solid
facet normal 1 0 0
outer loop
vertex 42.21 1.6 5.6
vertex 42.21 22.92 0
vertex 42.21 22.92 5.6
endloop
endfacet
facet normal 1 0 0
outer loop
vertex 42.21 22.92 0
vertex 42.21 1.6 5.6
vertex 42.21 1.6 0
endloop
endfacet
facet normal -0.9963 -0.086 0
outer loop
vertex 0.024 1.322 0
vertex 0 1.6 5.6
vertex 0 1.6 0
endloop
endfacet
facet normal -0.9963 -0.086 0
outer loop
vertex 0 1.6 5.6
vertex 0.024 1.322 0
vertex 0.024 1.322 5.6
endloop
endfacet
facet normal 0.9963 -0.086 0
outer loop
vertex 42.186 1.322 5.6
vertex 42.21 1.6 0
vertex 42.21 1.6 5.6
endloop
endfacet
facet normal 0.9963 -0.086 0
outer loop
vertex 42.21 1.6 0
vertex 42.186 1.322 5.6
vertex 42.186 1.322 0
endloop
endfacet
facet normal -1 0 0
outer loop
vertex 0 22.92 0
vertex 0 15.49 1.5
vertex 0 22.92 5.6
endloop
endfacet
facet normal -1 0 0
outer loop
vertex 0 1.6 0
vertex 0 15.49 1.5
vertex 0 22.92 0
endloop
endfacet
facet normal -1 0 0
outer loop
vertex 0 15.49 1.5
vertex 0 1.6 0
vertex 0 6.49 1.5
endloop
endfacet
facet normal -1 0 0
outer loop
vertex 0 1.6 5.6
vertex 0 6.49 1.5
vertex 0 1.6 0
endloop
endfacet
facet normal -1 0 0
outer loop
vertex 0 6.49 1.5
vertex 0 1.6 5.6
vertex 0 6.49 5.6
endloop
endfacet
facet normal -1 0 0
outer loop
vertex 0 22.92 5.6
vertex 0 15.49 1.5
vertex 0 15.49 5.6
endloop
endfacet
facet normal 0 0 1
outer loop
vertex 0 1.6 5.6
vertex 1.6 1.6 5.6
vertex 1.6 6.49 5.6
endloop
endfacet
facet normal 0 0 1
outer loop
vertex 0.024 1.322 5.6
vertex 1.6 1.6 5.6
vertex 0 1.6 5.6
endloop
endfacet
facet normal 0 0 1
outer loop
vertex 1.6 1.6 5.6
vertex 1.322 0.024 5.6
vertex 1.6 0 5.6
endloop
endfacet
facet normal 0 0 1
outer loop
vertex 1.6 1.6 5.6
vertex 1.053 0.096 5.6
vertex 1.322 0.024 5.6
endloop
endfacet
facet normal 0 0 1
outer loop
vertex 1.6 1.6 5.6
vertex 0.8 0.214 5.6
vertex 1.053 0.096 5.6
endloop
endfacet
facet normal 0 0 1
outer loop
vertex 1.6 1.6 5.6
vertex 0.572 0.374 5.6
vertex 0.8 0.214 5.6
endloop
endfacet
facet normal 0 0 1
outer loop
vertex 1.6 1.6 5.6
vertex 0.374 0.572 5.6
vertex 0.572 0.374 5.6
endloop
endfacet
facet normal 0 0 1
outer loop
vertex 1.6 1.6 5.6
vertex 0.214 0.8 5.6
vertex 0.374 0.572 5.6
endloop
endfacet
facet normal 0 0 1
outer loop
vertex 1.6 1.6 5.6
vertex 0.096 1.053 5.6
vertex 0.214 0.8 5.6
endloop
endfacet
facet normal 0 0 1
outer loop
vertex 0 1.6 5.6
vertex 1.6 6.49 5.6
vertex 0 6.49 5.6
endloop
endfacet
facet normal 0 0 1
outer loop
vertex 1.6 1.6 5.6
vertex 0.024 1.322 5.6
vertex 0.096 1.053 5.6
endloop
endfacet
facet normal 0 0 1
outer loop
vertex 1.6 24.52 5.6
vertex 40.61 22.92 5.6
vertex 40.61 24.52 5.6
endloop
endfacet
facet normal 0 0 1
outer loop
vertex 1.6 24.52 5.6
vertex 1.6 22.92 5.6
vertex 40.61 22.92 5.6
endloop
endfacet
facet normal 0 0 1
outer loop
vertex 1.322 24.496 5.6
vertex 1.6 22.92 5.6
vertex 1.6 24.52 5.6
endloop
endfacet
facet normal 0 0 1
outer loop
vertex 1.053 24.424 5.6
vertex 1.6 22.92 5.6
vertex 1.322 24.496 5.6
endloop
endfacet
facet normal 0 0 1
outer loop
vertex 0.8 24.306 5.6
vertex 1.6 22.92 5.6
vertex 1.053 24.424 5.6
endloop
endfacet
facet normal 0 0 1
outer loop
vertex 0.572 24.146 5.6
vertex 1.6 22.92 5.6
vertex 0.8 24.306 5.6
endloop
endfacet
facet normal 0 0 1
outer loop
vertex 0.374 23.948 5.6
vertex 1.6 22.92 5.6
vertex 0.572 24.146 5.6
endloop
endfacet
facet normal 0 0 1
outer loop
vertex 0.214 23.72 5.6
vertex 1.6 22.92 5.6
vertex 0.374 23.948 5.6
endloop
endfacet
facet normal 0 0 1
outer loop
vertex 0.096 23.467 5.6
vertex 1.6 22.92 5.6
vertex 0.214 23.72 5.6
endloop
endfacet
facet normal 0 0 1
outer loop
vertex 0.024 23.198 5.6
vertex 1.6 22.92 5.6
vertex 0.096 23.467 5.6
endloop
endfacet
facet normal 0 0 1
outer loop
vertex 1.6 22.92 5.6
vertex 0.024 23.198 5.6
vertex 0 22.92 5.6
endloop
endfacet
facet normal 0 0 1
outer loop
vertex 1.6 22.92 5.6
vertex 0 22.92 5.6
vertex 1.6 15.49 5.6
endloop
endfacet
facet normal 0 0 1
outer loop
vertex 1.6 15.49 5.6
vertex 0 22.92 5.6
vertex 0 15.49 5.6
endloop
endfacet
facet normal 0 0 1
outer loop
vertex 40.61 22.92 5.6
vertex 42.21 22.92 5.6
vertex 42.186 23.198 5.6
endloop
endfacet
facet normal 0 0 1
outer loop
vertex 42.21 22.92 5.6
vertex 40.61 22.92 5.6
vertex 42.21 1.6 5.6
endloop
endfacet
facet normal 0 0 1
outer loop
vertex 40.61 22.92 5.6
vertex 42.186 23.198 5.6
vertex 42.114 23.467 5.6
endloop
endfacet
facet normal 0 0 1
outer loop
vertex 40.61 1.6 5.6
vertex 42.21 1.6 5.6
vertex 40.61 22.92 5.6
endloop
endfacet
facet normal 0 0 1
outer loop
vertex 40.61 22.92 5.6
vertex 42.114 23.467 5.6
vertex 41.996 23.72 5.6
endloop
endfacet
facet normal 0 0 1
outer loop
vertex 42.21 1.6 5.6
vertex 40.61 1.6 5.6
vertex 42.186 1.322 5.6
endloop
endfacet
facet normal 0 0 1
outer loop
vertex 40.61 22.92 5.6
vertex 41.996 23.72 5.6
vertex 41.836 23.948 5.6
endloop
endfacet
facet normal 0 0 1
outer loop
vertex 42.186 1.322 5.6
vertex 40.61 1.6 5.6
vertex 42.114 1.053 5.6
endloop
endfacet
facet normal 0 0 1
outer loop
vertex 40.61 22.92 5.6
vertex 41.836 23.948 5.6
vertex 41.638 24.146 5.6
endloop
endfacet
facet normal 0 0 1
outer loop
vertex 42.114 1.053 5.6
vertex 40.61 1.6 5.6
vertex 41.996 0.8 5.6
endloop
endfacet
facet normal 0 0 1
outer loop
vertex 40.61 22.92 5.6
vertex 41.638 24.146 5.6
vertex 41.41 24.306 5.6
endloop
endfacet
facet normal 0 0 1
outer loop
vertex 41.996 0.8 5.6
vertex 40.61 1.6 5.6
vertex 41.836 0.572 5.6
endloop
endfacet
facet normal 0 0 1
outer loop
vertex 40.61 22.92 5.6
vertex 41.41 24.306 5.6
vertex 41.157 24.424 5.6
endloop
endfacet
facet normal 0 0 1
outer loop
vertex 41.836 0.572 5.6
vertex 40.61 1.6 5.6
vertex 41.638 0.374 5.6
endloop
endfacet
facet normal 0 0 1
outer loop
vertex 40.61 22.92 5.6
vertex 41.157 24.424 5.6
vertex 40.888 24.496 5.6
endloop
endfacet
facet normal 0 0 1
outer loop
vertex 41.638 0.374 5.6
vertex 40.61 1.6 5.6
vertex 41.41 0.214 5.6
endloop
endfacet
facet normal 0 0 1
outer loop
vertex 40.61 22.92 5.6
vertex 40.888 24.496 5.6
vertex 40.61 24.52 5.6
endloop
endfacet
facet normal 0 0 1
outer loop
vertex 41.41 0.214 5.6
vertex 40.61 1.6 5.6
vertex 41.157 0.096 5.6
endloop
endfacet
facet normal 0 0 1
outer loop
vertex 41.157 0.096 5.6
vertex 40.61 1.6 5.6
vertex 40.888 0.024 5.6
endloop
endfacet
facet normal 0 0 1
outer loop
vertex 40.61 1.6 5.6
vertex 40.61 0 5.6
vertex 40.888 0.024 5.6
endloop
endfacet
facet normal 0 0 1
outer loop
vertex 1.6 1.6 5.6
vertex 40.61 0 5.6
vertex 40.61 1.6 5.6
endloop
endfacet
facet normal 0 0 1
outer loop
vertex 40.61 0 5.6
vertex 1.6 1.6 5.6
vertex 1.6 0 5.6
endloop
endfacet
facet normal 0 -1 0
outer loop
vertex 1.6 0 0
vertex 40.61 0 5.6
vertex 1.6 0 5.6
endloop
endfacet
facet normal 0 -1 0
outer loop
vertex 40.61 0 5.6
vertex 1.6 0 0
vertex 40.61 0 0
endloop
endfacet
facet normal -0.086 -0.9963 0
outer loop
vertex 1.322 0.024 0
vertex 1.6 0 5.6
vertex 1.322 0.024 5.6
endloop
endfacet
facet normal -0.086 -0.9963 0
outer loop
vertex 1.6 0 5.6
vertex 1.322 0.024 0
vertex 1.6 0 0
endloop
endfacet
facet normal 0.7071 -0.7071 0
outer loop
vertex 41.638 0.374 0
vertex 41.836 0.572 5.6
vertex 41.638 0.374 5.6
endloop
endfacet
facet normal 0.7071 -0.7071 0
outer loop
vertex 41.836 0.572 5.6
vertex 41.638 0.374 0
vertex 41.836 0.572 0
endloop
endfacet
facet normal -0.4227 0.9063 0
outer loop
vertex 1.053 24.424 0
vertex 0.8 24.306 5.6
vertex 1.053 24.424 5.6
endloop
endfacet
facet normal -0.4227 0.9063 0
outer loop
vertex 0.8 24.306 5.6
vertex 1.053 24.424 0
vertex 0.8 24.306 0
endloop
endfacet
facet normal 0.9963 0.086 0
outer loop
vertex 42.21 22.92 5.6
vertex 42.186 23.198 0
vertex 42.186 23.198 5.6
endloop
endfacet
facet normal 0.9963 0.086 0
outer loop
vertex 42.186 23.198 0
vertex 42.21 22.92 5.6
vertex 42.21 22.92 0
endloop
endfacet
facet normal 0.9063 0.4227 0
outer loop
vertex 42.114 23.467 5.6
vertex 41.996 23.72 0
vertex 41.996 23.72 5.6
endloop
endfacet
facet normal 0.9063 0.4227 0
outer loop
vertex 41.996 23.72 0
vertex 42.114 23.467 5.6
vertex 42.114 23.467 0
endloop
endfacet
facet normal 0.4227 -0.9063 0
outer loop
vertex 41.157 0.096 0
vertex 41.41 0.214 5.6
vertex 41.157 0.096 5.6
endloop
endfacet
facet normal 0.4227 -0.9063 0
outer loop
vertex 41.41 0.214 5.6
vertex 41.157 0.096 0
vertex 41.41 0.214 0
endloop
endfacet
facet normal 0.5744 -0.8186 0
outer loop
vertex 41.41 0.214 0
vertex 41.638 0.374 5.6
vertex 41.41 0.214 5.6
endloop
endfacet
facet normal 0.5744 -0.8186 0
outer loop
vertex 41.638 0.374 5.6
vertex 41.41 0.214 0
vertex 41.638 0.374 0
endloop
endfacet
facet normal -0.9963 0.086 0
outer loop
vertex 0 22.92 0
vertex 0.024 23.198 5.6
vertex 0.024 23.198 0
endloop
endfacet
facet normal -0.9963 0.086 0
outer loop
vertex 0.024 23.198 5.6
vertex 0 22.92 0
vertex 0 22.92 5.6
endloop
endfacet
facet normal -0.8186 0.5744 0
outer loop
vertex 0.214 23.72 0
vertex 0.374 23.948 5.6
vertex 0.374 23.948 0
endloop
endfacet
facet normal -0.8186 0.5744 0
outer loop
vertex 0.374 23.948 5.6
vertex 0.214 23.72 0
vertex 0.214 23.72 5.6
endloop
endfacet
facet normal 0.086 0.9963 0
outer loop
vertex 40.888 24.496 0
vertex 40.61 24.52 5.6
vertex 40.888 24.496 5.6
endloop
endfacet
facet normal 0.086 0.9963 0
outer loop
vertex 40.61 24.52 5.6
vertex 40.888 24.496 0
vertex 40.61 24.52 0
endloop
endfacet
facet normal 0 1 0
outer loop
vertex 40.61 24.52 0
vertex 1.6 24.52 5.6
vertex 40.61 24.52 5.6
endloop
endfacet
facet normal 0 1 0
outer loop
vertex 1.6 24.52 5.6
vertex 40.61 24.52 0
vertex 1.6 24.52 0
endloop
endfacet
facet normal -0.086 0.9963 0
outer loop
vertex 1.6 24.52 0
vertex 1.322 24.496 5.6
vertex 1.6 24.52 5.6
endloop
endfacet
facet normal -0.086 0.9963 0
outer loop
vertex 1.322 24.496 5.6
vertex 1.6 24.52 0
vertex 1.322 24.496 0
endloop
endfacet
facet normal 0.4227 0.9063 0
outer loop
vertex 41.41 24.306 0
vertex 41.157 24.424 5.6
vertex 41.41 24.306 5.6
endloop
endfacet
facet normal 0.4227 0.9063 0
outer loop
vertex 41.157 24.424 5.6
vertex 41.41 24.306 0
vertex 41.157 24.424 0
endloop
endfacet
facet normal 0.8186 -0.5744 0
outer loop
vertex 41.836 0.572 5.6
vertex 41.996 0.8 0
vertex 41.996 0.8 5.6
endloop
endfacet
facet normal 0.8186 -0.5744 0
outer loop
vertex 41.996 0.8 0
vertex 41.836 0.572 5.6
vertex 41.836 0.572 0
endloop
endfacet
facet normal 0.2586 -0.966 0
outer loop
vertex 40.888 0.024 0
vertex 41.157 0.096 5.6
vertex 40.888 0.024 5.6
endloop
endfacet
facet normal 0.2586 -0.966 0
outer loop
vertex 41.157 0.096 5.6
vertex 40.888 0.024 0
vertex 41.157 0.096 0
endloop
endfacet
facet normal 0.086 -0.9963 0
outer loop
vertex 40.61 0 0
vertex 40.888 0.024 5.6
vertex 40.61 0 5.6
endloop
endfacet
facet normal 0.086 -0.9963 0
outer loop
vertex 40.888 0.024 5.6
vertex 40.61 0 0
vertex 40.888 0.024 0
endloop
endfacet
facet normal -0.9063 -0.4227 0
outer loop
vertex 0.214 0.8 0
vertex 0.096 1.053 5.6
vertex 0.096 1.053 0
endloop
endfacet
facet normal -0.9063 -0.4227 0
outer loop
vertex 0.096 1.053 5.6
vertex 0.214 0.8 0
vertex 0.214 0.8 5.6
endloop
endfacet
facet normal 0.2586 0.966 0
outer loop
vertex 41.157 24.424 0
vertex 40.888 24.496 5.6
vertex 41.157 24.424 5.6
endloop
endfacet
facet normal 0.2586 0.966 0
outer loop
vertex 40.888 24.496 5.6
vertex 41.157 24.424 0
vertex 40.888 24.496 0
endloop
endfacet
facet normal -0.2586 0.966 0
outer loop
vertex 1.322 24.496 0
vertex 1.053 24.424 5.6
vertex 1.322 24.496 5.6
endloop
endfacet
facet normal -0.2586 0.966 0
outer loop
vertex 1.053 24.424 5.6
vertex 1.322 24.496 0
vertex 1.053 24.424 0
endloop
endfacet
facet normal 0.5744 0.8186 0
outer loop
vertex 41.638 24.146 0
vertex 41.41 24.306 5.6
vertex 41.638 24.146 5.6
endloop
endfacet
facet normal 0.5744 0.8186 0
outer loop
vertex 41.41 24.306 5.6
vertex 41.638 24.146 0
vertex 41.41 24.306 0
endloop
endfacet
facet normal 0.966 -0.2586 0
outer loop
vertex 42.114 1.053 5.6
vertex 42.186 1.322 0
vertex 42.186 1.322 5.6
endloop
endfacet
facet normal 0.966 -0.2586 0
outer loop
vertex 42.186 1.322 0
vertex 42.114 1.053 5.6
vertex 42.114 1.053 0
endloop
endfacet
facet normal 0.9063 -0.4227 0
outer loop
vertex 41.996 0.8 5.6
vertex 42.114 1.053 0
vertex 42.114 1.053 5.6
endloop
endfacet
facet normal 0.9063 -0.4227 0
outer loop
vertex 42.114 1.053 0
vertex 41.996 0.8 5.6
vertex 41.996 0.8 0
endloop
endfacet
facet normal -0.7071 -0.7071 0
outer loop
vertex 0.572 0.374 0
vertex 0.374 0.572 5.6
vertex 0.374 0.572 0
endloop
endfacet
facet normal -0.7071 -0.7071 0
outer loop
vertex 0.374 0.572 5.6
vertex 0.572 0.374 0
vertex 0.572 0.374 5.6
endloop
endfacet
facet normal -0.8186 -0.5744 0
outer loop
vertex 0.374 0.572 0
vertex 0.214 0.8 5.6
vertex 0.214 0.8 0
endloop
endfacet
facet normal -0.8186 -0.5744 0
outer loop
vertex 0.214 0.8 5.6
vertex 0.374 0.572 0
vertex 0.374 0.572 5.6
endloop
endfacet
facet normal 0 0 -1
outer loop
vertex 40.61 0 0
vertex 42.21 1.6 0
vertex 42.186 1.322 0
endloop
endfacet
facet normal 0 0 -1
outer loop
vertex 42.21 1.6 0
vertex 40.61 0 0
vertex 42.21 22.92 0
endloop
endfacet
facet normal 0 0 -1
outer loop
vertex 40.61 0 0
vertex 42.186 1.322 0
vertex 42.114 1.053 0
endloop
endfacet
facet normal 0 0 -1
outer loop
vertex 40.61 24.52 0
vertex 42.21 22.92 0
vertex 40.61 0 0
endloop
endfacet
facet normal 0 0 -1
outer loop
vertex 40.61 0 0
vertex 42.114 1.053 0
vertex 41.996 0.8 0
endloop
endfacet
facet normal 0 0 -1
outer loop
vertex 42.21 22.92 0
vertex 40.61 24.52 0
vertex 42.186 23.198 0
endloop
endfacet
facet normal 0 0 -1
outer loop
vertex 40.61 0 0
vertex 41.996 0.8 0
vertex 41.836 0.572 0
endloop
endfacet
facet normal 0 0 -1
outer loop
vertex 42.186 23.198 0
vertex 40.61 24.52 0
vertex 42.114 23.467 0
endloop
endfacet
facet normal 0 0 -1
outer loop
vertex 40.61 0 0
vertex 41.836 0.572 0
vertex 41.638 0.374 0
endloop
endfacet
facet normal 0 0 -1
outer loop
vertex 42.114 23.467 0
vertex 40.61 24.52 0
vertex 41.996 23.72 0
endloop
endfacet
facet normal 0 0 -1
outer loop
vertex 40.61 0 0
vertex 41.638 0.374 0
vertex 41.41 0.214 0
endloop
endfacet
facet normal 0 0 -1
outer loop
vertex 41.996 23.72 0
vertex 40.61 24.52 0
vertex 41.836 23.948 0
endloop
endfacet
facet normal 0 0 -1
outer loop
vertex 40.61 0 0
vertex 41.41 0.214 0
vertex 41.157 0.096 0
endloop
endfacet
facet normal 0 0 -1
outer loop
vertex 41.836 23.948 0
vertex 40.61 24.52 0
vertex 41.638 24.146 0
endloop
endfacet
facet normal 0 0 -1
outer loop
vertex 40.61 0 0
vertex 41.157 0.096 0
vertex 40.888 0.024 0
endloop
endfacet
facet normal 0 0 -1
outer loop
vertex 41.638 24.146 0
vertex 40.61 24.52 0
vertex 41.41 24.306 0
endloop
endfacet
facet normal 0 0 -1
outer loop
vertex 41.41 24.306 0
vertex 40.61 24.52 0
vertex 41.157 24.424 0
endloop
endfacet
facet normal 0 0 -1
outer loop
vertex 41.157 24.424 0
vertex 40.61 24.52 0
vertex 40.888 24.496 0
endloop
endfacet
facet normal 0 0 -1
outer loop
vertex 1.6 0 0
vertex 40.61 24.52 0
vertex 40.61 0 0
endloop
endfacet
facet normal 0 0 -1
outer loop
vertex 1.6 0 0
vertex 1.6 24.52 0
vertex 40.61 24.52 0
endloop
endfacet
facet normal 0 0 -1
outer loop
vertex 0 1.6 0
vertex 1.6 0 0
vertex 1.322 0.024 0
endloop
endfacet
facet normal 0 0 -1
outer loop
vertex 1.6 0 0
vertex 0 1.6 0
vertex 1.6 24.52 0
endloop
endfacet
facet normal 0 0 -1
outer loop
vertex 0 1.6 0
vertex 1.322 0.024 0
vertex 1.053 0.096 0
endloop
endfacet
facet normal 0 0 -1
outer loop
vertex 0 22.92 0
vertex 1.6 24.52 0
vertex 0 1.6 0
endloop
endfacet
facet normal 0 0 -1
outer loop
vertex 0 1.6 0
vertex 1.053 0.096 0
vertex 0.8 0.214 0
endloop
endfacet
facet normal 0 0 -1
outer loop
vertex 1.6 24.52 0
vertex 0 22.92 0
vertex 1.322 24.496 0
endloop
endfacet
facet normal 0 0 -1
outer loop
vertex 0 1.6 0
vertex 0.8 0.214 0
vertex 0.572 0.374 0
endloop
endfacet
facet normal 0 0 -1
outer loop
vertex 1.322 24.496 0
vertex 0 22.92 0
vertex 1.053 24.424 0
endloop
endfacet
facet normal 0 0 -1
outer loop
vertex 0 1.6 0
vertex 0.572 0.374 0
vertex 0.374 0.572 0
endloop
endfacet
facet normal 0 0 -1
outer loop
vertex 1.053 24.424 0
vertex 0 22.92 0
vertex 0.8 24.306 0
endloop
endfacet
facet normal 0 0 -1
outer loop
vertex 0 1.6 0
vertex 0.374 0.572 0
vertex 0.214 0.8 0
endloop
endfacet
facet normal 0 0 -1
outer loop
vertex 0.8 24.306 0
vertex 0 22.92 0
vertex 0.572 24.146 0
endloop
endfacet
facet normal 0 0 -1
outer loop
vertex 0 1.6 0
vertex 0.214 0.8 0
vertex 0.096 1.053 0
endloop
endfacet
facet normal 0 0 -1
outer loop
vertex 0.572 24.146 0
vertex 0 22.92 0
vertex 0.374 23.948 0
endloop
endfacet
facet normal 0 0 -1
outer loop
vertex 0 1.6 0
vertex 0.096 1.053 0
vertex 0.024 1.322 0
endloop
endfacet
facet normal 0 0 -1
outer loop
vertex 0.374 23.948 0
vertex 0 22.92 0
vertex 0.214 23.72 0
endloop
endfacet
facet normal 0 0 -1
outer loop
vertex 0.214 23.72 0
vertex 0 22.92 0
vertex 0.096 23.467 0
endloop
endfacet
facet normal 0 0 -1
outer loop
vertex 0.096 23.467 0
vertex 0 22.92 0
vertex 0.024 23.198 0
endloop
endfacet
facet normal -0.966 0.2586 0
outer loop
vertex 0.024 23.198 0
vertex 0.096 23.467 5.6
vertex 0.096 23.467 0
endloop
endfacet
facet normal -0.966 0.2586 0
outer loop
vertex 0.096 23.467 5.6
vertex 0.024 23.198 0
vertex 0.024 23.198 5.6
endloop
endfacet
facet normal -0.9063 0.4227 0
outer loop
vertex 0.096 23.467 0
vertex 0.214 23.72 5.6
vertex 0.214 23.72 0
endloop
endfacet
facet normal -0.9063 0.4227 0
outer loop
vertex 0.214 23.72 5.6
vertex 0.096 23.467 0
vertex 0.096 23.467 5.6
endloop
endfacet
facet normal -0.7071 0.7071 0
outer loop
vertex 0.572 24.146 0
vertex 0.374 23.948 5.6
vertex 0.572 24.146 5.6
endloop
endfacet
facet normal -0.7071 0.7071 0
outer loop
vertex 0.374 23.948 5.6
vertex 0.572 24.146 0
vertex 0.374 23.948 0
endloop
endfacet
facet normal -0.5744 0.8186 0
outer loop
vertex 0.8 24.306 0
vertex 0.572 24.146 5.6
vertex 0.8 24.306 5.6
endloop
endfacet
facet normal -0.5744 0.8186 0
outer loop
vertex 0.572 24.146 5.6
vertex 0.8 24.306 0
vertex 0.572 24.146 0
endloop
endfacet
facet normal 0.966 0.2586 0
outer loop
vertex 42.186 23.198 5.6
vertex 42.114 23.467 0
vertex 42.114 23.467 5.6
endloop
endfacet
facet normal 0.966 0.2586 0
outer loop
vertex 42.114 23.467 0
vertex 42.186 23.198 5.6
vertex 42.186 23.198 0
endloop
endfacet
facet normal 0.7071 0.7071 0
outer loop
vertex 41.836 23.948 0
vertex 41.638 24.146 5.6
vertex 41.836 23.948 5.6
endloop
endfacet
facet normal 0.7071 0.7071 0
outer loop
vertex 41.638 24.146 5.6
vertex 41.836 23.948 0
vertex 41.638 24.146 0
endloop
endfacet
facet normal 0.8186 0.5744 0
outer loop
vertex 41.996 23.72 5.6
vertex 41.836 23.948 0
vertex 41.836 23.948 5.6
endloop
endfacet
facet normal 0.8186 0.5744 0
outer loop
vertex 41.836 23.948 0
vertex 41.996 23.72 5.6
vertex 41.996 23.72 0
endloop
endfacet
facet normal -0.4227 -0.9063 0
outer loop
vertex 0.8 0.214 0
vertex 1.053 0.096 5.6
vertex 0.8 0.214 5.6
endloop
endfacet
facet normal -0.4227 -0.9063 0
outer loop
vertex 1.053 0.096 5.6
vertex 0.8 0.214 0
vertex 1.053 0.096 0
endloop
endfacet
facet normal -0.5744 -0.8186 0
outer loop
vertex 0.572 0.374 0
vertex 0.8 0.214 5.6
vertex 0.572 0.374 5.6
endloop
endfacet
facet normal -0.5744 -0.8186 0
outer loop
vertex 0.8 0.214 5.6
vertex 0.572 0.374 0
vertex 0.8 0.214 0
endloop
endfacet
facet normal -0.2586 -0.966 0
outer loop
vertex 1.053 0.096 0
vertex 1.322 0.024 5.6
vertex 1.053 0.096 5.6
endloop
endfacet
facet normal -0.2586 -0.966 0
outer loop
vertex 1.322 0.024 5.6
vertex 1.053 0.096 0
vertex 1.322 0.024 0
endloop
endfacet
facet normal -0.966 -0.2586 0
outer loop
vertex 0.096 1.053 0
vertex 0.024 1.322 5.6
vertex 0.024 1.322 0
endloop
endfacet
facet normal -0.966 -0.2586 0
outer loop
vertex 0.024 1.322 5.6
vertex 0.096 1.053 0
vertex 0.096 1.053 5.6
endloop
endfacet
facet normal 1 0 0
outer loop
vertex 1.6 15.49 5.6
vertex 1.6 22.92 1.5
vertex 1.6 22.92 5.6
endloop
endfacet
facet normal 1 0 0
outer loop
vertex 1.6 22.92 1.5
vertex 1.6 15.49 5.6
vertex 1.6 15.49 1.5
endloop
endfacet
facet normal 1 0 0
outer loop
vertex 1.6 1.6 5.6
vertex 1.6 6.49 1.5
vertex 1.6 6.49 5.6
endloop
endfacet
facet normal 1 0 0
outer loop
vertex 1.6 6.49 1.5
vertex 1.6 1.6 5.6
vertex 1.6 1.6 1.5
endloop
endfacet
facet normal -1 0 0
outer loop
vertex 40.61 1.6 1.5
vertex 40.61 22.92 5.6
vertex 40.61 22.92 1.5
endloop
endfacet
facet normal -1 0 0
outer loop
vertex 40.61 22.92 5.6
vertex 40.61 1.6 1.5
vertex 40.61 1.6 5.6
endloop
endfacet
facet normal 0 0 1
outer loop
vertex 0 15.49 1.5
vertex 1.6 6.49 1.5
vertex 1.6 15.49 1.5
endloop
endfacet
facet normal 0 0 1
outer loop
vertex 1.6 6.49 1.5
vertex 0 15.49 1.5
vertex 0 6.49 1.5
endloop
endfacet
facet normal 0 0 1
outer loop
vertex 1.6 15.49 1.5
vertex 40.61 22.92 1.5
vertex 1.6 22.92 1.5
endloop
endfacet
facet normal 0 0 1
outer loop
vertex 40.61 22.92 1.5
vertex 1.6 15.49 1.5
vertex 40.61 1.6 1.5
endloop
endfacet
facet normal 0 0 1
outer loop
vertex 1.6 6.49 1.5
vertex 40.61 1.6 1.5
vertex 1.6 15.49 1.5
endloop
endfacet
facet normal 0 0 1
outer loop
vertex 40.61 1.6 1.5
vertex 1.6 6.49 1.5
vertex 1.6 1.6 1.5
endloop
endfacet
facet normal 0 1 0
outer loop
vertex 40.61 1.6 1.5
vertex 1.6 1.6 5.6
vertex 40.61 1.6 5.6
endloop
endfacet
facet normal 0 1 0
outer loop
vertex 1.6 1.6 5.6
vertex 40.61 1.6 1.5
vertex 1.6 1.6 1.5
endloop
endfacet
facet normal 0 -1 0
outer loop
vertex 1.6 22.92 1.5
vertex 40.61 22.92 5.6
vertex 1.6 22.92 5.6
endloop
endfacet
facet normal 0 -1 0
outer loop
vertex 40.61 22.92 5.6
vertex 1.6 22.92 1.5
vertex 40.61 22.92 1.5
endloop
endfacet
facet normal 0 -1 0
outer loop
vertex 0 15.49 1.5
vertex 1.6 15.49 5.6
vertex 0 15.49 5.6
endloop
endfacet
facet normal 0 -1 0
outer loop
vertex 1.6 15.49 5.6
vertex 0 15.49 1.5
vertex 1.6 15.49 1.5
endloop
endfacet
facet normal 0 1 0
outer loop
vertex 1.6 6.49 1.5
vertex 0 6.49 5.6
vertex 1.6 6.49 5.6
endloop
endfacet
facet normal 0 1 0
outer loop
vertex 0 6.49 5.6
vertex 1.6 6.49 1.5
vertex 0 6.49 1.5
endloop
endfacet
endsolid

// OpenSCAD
// See OpenSCAD documentation at 
// http://en.wikibooks.org/wiki/OpenSCAD_User_Manual/The_OpenSCAD_Language
//
// A simple 3D printed case for Arm Pro Mini. Board can be mounted to the
// bottom of the case with 3M Mounting Tape.
//
// All dimensions are in mm.

$fn=36;

// Length (along x axis).
board_len = 38.01;  
// Width (along y axis)
board_width = 20.32;  
// PCB thicknes.
board_thickness = 1.6;  
// Free marging aroudn the pcb.
board_margin = 0.5; 
// Width of box's wall.
wall_width = 1.6;  
// Radius of four box corners.
corner_radius = wall_width; 
// Thickness of the bottom.
bottom_height = 1.5; 
// Free space to leave below the PCB (for double side tape).
space_below_board = 1;
// Free space to leave above the PCB.
space_above_board = 3;
// Width of opening for USB connector.
port_width = 9;
// Offset of USB connector center from board's center.
port_offset_from_center = 1.27;

// Derived dimensions
//
box_len = 2*wall_width + 2*board_margin + board_len;
box_width = 2*wall_width + 2*board_margin + board_width;
box_height = wall_width + space_below_board + space_above_board;

// A small, >0 value for well define relations between objects.
// Does not affect generated box.
eps=0.01;
eps2 = 2*eps;

module solid_box(x, y, z, xlen, ylen, zlen) {
 translate([x, y, z]) 
 cube([xlen, ylen, zlen]); 
}

module rounded_solid_box(x, y, z, xlen, ylen, zlen, r) {
  translate([x+r, y+r, z]) minkowski() {
    cube([xlen-2*r, ylen-2*r, zlen/2]);
    cylinder(r=r, h=zlen/2);
 }
}

module main_part() {
  difference() {
    // Overall box.
    rounded_solid_box(0, 0, 0, 
        box_len, box_width, box_height, corner_radius);
    // Remove inner space.
    solid_box(wall_width, wall_width, bottom_height, 
        box_len-2*wall_width, 
        box_width-2*wall_width, 
        box_height);
    // Remove opening for USB connector.
    solid_box(-eps, 
        box_width/2-port_offset_from_center - port_width/2, 
        bottom_height, wall_width + eps2, port_width, box_height);
  }
}

main_part();
